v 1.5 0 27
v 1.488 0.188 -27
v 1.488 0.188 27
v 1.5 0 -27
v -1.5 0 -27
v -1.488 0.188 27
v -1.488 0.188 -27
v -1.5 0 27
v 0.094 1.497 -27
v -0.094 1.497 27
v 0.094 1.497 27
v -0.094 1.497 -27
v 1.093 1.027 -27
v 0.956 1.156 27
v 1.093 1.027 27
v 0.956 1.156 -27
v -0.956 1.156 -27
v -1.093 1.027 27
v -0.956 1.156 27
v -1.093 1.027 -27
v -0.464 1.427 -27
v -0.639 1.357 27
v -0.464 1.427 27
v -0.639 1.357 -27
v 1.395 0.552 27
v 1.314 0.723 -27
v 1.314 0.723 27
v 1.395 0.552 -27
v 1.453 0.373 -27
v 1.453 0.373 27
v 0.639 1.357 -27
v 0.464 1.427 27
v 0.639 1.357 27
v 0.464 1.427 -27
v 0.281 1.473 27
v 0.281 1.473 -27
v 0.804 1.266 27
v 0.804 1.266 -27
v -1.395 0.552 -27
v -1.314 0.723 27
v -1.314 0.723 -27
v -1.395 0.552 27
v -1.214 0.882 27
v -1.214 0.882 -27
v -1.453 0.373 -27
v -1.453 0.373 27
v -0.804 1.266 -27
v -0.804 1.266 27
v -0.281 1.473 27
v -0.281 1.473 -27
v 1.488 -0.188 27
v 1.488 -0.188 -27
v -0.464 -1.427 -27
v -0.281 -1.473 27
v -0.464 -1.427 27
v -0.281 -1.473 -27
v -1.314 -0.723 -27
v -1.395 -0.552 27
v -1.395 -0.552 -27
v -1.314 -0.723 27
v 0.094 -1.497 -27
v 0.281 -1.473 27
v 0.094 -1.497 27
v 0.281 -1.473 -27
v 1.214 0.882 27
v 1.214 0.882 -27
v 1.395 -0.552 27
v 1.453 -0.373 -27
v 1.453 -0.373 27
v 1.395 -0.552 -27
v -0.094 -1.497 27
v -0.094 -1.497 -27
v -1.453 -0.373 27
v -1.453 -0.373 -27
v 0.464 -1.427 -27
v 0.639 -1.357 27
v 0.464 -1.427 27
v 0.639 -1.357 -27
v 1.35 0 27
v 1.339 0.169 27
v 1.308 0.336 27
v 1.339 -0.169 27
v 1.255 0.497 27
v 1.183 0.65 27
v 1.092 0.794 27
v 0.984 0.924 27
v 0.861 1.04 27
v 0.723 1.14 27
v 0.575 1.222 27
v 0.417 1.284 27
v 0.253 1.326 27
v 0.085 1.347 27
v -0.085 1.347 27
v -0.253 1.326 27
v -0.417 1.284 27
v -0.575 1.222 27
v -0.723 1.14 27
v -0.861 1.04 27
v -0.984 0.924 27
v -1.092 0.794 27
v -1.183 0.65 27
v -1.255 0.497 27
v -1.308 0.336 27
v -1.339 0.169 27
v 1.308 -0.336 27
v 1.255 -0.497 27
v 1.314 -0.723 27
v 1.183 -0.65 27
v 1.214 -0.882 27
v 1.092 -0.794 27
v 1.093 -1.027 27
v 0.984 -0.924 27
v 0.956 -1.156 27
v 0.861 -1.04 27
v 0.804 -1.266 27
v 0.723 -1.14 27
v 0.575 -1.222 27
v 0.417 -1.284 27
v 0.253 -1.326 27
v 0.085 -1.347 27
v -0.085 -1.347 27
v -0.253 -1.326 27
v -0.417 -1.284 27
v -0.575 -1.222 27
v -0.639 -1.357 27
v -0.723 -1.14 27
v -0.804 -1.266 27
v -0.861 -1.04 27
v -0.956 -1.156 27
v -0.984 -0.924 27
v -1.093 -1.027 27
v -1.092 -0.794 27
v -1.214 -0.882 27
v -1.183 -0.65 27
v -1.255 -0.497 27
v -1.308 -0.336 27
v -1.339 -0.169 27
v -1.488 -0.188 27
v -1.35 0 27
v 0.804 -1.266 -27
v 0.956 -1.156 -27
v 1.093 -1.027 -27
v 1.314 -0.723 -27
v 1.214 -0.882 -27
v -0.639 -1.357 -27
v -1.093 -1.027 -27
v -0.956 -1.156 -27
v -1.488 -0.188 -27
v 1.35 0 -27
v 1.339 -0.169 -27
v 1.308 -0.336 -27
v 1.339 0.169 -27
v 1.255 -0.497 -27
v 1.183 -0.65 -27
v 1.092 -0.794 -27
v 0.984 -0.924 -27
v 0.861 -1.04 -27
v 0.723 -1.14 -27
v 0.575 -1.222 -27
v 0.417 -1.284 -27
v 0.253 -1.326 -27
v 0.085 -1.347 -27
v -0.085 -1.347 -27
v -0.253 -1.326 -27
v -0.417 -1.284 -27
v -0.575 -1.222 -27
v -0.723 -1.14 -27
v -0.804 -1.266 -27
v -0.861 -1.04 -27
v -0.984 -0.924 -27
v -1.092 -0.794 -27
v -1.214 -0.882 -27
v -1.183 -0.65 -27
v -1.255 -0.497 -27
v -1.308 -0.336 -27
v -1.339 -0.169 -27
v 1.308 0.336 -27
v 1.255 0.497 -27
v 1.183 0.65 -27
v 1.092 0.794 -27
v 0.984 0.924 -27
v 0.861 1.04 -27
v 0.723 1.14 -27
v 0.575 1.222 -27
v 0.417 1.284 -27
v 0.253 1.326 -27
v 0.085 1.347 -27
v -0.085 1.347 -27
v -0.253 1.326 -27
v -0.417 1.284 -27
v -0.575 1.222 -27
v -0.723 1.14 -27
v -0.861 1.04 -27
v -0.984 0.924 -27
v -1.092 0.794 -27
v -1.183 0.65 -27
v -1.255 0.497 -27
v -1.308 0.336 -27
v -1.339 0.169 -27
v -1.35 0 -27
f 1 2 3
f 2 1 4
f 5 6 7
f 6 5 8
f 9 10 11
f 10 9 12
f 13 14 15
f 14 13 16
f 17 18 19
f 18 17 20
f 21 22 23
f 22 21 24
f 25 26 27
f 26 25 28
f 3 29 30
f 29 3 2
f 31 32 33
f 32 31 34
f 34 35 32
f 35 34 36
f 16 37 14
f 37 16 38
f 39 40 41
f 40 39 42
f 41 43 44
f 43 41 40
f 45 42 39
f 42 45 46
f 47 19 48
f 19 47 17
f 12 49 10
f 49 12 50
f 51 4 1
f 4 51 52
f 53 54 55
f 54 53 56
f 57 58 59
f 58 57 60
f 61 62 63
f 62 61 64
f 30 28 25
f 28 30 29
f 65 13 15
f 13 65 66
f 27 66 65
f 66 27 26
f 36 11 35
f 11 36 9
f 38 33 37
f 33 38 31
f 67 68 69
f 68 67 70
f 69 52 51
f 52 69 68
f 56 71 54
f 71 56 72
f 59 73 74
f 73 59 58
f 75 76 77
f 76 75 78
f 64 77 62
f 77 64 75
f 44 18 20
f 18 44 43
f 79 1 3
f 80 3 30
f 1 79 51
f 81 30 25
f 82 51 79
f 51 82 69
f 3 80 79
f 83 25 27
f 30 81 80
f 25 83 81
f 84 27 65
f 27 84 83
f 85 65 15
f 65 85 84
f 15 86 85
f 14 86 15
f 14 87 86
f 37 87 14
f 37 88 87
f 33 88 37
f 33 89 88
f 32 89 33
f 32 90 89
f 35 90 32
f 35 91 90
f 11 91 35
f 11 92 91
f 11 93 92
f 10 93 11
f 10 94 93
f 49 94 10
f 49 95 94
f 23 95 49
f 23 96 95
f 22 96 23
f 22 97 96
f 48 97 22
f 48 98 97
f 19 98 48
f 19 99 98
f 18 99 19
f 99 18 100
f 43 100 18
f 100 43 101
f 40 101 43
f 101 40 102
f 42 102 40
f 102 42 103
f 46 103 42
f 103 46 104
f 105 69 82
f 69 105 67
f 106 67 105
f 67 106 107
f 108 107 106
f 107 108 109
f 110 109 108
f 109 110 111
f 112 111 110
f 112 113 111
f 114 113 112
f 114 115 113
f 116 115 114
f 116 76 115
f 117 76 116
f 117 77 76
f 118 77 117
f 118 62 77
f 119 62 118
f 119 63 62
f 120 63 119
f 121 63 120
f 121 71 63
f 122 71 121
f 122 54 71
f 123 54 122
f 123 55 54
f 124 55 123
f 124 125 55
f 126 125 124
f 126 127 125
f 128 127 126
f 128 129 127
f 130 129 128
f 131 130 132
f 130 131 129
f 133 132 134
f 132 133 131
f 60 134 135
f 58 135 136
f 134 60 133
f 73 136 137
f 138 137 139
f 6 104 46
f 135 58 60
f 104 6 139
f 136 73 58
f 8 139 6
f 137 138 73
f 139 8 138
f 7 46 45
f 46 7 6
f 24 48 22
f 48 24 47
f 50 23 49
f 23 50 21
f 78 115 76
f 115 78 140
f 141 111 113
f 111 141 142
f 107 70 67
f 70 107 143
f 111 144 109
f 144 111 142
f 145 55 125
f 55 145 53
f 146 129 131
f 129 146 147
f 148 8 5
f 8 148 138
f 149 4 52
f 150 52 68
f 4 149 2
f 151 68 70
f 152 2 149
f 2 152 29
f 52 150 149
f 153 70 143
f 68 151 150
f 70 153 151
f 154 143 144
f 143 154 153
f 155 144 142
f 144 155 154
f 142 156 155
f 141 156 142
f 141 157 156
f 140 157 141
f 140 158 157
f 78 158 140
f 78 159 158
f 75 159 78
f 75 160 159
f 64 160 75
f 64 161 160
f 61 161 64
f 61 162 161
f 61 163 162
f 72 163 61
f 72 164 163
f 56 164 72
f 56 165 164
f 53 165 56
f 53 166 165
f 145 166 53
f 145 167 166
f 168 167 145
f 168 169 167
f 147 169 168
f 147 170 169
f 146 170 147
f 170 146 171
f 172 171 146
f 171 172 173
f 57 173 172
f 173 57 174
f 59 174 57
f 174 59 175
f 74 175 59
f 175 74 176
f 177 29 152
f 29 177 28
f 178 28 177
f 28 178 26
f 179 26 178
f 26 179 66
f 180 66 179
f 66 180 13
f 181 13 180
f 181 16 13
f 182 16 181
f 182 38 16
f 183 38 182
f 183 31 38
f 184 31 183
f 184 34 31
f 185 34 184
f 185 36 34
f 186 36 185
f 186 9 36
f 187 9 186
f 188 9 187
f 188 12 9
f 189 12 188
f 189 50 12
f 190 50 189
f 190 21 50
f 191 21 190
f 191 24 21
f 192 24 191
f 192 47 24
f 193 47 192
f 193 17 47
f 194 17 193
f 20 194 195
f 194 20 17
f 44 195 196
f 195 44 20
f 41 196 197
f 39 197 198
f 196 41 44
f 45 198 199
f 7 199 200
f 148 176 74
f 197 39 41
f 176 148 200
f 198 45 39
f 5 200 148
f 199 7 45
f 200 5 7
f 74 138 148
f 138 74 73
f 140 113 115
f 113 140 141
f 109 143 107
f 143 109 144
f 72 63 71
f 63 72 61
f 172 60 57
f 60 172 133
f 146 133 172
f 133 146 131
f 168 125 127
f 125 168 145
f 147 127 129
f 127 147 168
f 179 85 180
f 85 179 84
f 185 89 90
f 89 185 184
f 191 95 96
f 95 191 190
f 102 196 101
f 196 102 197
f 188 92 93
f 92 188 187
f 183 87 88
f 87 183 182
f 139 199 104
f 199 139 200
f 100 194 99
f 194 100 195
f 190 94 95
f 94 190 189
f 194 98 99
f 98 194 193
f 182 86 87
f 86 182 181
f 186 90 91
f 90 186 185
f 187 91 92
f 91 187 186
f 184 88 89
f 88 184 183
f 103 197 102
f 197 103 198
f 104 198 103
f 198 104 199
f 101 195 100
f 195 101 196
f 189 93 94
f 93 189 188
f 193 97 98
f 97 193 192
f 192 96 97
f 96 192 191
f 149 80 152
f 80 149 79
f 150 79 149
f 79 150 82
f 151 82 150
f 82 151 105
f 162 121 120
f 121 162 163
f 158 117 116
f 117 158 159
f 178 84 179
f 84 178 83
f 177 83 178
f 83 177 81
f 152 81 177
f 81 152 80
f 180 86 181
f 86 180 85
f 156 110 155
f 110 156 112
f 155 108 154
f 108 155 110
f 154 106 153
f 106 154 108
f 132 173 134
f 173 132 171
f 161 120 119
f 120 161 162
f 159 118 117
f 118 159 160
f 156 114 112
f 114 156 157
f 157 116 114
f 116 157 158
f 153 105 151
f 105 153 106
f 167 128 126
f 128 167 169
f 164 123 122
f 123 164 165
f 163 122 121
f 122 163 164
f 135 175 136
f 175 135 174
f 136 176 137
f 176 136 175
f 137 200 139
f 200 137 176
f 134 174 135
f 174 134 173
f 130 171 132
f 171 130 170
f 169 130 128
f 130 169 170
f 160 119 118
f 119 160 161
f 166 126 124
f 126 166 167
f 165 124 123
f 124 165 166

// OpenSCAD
$fn = 50;


difference() {
	union() {
		translate(v = [0, 0, -27.0000000000]) {
			cylinder(h = 54, r = 1.5000000000);
		}
	}
	union() {
		translate(v = [0, 0, -100.0000000000]) {
			cylinder(h = 200, r = 1.3500000000);
		}
	}
}
